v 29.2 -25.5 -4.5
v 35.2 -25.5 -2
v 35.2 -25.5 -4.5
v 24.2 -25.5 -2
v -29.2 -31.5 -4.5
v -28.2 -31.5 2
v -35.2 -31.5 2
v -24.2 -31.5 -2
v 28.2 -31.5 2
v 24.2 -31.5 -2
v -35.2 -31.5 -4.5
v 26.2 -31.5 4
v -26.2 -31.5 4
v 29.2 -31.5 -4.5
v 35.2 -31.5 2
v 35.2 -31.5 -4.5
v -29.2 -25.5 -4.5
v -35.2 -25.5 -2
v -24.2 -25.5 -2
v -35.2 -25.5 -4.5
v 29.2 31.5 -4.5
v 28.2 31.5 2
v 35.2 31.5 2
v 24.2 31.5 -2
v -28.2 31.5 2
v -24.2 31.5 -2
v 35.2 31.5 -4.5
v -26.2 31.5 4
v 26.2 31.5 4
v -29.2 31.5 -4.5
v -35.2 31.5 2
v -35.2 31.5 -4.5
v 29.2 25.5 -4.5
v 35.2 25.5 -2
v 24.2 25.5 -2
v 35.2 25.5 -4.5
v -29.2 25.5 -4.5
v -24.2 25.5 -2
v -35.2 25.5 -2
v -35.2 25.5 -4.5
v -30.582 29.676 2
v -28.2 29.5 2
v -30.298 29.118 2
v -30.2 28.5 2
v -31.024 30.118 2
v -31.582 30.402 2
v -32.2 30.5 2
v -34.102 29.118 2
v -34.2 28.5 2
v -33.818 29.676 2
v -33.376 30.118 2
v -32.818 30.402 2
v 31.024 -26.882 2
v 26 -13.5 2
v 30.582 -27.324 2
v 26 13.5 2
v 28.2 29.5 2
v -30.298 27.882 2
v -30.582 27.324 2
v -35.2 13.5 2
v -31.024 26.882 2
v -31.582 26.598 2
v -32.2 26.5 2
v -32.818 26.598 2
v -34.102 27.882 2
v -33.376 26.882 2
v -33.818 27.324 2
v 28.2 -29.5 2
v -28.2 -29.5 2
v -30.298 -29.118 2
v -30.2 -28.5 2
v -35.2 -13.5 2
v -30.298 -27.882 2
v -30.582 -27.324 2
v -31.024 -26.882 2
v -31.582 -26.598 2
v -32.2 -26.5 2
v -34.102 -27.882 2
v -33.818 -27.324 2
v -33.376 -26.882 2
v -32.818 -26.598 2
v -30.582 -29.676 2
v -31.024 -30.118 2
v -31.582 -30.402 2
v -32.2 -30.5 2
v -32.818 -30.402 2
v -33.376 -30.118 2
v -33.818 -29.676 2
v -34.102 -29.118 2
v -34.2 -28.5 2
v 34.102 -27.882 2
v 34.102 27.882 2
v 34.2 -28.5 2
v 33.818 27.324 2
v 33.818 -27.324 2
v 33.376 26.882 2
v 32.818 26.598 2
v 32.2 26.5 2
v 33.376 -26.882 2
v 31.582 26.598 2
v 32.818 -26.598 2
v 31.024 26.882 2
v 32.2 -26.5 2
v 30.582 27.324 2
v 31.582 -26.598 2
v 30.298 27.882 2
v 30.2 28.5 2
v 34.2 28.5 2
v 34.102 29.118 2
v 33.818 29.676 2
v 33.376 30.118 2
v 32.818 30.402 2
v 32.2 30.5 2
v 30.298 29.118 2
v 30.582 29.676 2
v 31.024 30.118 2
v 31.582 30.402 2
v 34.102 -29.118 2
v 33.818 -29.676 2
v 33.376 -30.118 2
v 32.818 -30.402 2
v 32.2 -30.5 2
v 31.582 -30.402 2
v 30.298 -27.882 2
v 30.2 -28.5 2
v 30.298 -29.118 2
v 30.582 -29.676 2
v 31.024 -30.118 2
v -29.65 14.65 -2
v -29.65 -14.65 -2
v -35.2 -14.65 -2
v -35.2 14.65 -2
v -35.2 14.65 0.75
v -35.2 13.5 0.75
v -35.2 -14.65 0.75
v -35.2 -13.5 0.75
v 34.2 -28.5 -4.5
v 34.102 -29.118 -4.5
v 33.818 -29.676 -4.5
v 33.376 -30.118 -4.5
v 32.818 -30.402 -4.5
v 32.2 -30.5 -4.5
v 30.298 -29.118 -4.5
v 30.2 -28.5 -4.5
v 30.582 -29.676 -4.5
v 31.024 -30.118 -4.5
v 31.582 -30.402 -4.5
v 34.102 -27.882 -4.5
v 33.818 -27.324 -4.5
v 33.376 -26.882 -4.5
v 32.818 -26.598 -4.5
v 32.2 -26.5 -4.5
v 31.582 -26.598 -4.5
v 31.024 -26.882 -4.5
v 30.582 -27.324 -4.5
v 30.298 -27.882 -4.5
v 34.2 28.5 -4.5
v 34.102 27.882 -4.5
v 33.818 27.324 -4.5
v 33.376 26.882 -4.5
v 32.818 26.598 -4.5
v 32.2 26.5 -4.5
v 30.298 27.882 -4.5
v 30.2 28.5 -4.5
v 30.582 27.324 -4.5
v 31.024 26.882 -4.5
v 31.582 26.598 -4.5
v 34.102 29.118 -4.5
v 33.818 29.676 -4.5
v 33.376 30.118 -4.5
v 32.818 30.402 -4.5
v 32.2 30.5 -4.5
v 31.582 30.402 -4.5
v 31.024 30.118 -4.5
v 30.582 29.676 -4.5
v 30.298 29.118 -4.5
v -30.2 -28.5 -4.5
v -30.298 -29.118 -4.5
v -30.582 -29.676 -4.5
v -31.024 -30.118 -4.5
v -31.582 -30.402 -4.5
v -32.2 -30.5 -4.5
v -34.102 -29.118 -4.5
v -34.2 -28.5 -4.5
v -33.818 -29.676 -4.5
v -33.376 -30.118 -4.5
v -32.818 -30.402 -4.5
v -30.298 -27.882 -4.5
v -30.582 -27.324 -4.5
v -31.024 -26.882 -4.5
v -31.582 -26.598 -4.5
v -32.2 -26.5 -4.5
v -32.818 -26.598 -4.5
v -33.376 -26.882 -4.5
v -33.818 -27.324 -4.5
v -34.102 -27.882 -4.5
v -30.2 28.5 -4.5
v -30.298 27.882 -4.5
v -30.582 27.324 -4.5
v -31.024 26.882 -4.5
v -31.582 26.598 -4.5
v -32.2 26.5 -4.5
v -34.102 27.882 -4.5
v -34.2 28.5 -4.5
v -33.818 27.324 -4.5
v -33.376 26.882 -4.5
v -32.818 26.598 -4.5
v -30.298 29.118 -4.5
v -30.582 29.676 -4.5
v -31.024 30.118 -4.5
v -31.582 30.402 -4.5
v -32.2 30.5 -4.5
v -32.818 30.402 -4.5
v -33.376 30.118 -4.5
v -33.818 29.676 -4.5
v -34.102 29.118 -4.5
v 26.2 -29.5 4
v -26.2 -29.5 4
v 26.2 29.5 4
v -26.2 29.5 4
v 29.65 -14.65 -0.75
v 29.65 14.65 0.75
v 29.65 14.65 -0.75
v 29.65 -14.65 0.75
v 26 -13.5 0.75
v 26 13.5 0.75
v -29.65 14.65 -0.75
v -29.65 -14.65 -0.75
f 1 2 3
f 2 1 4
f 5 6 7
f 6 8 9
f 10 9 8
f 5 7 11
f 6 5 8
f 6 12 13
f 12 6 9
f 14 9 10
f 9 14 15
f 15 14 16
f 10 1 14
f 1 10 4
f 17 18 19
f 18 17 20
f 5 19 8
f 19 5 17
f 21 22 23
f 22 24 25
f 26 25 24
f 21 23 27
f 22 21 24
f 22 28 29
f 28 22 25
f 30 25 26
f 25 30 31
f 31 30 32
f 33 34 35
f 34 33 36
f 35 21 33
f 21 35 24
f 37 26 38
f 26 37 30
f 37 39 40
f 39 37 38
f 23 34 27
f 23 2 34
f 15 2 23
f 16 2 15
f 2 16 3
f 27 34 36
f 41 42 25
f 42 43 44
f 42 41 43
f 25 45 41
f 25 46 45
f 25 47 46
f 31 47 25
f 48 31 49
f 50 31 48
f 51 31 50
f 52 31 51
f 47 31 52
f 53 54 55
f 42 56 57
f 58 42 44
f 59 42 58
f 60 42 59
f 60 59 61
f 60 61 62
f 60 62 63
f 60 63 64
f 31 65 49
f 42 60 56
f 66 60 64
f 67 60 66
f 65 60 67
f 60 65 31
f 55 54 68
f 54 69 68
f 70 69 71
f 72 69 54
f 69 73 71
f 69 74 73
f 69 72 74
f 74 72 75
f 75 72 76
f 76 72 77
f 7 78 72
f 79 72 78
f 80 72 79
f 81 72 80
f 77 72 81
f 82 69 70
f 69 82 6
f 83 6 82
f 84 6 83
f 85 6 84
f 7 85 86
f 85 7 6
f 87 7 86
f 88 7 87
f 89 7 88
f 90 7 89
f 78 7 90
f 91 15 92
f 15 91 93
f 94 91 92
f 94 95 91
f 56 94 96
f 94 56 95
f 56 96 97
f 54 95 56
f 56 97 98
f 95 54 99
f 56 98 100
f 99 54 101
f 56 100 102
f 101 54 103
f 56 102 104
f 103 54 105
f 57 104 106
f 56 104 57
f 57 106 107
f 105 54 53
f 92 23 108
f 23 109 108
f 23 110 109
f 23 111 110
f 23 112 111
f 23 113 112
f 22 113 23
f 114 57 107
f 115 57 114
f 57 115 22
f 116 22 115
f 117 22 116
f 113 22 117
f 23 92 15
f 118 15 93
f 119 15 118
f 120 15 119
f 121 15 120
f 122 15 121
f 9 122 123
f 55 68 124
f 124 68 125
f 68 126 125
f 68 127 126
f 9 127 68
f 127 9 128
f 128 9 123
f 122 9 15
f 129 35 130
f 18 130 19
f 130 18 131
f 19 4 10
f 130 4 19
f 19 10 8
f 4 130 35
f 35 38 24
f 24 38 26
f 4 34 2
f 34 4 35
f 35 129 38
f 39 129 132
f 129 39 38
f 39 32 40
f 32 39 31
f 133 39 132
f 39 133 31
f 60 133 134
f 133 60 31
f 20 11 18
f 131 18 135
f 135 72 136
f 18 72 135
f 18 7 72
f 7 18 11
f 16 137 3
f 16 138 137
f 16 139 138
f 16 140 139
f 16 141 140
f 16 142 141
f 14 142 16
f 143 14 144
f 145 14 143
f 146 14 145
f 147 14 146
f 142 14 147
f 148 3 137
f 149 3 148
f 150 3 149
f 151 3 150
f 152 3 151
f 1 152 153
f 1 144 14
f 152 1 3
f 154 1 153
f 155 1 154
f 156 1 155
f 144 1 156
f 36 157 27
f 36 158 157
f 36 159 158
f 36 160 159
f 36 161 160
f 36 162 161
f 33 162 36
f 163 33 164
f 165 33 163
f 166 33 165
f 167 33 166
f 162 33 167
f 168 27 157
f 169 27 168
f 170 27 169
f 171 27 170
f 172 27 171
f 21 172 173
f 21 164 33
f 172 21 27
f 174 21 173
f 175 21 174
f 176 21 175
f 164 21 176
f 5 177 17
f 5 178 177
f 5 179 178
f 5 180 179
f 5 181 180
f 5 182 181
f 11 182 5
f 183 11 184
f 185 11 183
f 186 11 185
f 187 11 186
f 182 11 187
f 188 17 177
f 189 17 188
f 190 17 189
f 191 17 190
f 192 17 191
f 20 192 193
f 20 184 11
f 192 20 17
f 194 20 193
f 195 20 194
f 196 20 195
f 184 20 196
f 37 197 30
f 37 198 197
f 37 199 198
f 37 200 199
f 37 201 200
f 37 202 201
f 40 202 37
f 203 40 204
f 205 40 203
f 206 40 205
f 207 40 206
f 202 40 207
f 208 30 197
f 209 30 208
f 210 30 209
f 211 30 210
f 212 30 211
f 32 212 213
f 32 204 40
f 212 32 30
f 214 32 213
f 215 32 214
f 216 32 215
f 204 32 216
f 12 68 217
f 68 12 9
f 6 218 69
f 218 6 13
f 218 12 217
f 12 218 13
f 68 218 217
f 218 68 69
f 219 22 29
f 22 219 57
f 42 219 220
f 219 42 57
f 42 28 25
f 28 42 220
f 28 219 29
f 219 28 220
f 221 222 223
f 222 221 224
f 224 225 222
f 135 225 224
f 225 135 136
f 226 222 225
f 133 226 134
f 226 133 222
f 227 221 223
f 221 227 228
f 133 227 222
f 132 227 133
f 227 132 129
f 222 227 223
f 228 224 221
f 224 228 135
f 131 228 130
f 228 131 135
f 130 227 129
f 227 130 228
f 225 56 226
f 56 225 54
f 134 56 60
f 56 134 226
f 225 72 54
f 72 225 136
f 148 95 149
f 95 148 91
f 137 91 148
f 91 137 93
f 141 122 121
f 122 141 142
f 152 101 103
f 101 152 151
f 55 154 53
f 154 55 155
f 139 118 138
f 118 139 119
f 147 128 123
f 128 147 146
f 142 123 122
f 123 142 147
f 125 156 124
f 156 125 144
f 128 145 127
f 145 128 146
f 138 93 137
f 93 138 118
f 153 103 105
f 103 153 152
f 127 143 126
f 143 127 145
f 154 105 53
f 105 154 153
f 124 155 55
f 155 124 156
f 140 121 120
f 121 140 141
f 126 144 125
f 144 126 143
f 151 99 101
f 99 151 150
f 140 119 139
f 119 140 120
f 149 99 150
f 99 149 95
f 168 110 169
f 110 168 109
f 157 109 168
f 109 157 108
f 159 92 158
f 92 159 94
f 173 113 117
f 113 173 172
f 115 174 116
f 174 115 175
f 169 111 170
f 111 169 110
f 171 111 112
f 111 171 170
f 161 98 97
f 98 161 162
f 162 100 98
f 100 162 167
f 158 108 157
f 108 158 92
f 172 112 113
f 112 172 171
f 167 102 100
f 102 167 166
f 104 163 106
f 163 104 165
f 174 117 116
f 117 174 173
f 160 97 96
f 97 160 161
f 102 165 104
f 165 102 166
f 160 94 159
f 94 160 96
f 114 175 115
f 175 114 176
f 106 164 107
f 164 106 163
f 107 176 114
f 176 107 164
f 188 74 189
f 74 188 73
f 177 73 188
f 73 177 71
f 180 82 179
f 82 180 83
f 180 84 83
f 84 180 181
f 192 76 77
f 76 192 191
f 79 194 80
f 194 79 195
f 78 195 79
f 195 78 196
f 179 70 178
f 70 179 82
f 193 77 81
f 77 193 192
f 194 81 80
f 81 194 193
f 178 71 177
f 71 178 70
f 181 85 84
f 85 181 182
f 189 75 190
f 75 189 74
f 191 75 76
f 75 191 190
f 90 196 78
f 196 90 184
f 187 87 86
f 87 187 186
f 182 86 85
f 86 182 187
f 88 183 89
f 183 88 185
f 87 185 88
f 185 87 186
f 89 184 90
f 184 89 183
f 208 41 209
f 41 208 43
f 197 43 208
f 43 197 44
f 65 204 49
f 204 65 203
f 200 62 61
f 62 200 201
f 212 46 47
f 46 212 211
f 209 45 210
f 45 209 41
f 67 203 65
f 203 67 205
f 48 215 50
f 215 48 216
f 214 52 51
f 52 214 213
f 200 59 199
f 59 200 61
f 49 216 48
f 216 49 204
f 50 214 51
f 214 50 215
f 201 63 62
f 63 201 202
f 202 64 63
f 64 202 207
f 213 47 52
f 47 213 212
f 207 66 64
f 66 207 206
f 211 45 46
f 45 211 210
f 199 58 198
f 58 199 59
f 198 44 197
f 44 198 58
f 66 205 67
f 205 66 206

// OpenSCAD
// file: common.scad
case_size_factor = 1.8;
case = [100*case_size_factor, 61*case_size_factor, 38*case_size_factor];

thickness = 2;

inner_cyl_radius = 6.5;
inner_cyl_shift = 10; //$case[2]/5;
inner_cyl_x = case[0]/2-inner_cyl_shift-0.5;
inner_cyl_z = case[2]/2-inner_cyl_shift+0.1;
inner_cyl_h = 18;

screen = [60, 3, 30];

speaker = [68, 60, 45]; // diag 85
speaker_screw_dist = 52;

foot_radius = 10;
foot_dist_factor = [0.7, 0.85];

vent = 50;

pcb_screw = [157, 48, 3.5]; // width, height, diam
pcb_screw_insert = [3, 7.9]; // height, diam
usb = [11, 3.5];
usb_from_middle = 2;
sdcard = [15, 3];

pin_header_height = 8;
pin_socket_height = 3;
pcb_interspace = pin_header_height + pin_socket_height;
pcb_thickness = 1.6;

front_panel = [case[0] - thickness - 1, pcb_thickness * 2 + pcb_interspace, case[2] - thickness - 1];
// main file
include <common.scad>;

pcb = "picoclock-Edge_Cuts.svg";

//translate([-case[0]/2-2, -case[1]/2-43, 0])
//linear_extrude(height=2, scale=1)
//  offset(r=0, $fn=5)
//    import(file = pcb, dpi = 300);

screen_holder_screw_rad = 2;
screen_holder_out = [screen_holder_screw_rad*3, 63, 3];
screen_holder_in = [70.4, 39.2, 4];
screen_size = [59.3, 29.3, 1.5];
screen_size_toborder = 7.1;
screen_visible_size = [52, 27, 3];

module support() {
    cube(screen_holder_in, center=true);

    translate([0, 0]) cube([screen_holder_in[0], screen_holder_out[1], screen_holder_in[2]], center=true);
    // 2 holders
    //translate([-screen_holder_in[0]/2+screen_holder_out[0]/2, 0]) cube([screen_holder_out[0], screen_holder_out[1], screen_holder_in[2]], center=true);
    //translate([+screen_holder_in[0]/2-screen_holder_out[0]/2, 0]) cube([screen_holder_out[0], screen_holder_out[1], screen_holder_in[2]], center=true);

    // 4 screw supports
    $x = screen_holder_in[0]/2-screen_holder_out[0]/2;
    $y = -screen_holder_out[1]/2+screen_holder_out[0]/2;
    $z = -screen_holder_out[2];
    translate([$x, $y, $z]) cube([screen_holder_out[0], screen_holder_out[0], screen_holder_out[2]], center=true);
    $y2 = screen_holder_out[1]/2-screen_holder_out[0]/2;
    translate([$x, $y2, $z]) cube([screen_holder_out[0], screen_holder_out[0], screen_holder_out[2]], center=true);

    translate([-screen_holder_in[0]/2+screen_holder_out[0]/2, -screen_holder_out[1]/2+screen_holder_out[0]/2, -screen_holder_out[2]])
    cube([screen_holder_out[0], screen_holder_out[0], screen_holder_out[2]], center=true);
    translate([-screen_holder_in[0]/2+screen_holder_out[0]/2, screen_holder_out[1]/2-screen_holder_out[0]/2, -screen_holder_out[2]])
    cube([screen_holder_out[0], screen_holder_out[0], screen_holder_out[2]], center=true);

    // Support for printing
    for (x = [0:3]) {
        $posy = x < 2 ? -screen_holder_out[1]/2 + screen_holder_out[0]: screen_holder_out[1]/2;
        $mirrorz = x % 2 == 0 ? 1 : 0;
        mirror([$mirrorz,0,0])
            translate([-screen_holder_in[0]/2+screen_holder_out[0], $posy, -1.5])
                rotate([90, 90])
                    linear_extrude(screen_holder_out[0])
                        polygon(points=[[0,0], [screen_holder_out[0]/2, 0], [0, screen_holder_out[0]]], paths=[[0,1,2]]);
    }

    // Add border to block light
    translate([-screen_holder_in[0]/2 + screen_holder_out[0] + 1, -screen_holder_out[1]/2 + 2, screen_holder_in[2]/2]) rotate([90]) linear_extrude(2)
        polygon(points=[
            [0,0],
            [screen_holder_in[0] - screen_holder_out[0]*2 - 2, 0],
            [screen_holder_in[0] - screen_holder_out[0]*2 - 4, 2],
            [2, 2]
        ], paths=[
            [0,1,2,3]
        ]);
    translate([-screen_holder_in[0]/2 + screen_holder_out[0] + 1, screen_holder_out[1]/2, screen_holder_in[2]/2]) rotate([90]) linear_extrude(2)
        polygon(points=[
            [0,0],
            [screen_holder_in[0] - screen_holder_out[0]*2 - 2, 0],
            [screen_holder_in[0] - screen_holder_out[0]*2 - 4, 2],
            [2, 2]
        ], paths=[
            [0,1,2,3]
        ]);

    //translate([0, -screen_holder_out[1]/2 + 1, screen_holder_in[2]/2 + 1]) cube([screen_holder_in[0] - screen_holder_out[0]*2 - 2, 2, 2], center=true);
    //translate([0, screen_holder_out[1]/2 - 1, screen_holder_in[2]/2 + 1]) cube([screen_holder_in[0] - screen_holder_out[0]*2 - 2, 2, 2], center=true);
}

difference() {
    support();

    translate([-screen_size_toborder/2, 0, 0]) cube([screen_size[0]+screen_size_toborder, screen_size[1], screen_size[2]], center=true);

    translate([-screen_size[0]/2-screen_size_toborder/2, 0, -2]) cube([screen_size_toborder, screen_size[1], 4], center=true);

    // Visible screen size
    translate([0, 0, 1]) cube(screen_visible_size, center=true);

    // Remove material on the left to ease printing
    translate([-screen_holder_in[0]/2+5, 0, 1]) cube([10, screen_visible_size[1], screen_visible_size[2]], center=true);

    // Screw holes
    translate([screen_holder_in[0]/2-screen_holder_out[0]/2, -screen_holder_out[1]/2+screen_holder_screw_rad+1, -screen_holder_out[2]])
    cylinder(h=10, d=4, $fn=20, center=true);
    translate([screen_holder_in[0]/2-screen_holder_out[0]/2, screen_holder_out[1]/2-screen_holder_screw_rad-1, -screen_holder_out[2]])
    cylinder(h=10, d=4, $fn=20, center=true);

    translate([-screen_holder_in[0]/2+screen_holder_out[0]/2, -screen_holder_out[1]/2+screen_holder_screw_rad+1, -screen_holder_out[2]])
    cylinder(h=10, d=4, $fn=20, center=true);
    translate([-screen_holder_in[0]/2+screen_holder_out[0]/2, screen_holder_out[1]/2-screen_holder_screw_rad-1, -screen_holder_out[2]])
    cylinder(h=10, d=4, $fn=20, center=true);
}
